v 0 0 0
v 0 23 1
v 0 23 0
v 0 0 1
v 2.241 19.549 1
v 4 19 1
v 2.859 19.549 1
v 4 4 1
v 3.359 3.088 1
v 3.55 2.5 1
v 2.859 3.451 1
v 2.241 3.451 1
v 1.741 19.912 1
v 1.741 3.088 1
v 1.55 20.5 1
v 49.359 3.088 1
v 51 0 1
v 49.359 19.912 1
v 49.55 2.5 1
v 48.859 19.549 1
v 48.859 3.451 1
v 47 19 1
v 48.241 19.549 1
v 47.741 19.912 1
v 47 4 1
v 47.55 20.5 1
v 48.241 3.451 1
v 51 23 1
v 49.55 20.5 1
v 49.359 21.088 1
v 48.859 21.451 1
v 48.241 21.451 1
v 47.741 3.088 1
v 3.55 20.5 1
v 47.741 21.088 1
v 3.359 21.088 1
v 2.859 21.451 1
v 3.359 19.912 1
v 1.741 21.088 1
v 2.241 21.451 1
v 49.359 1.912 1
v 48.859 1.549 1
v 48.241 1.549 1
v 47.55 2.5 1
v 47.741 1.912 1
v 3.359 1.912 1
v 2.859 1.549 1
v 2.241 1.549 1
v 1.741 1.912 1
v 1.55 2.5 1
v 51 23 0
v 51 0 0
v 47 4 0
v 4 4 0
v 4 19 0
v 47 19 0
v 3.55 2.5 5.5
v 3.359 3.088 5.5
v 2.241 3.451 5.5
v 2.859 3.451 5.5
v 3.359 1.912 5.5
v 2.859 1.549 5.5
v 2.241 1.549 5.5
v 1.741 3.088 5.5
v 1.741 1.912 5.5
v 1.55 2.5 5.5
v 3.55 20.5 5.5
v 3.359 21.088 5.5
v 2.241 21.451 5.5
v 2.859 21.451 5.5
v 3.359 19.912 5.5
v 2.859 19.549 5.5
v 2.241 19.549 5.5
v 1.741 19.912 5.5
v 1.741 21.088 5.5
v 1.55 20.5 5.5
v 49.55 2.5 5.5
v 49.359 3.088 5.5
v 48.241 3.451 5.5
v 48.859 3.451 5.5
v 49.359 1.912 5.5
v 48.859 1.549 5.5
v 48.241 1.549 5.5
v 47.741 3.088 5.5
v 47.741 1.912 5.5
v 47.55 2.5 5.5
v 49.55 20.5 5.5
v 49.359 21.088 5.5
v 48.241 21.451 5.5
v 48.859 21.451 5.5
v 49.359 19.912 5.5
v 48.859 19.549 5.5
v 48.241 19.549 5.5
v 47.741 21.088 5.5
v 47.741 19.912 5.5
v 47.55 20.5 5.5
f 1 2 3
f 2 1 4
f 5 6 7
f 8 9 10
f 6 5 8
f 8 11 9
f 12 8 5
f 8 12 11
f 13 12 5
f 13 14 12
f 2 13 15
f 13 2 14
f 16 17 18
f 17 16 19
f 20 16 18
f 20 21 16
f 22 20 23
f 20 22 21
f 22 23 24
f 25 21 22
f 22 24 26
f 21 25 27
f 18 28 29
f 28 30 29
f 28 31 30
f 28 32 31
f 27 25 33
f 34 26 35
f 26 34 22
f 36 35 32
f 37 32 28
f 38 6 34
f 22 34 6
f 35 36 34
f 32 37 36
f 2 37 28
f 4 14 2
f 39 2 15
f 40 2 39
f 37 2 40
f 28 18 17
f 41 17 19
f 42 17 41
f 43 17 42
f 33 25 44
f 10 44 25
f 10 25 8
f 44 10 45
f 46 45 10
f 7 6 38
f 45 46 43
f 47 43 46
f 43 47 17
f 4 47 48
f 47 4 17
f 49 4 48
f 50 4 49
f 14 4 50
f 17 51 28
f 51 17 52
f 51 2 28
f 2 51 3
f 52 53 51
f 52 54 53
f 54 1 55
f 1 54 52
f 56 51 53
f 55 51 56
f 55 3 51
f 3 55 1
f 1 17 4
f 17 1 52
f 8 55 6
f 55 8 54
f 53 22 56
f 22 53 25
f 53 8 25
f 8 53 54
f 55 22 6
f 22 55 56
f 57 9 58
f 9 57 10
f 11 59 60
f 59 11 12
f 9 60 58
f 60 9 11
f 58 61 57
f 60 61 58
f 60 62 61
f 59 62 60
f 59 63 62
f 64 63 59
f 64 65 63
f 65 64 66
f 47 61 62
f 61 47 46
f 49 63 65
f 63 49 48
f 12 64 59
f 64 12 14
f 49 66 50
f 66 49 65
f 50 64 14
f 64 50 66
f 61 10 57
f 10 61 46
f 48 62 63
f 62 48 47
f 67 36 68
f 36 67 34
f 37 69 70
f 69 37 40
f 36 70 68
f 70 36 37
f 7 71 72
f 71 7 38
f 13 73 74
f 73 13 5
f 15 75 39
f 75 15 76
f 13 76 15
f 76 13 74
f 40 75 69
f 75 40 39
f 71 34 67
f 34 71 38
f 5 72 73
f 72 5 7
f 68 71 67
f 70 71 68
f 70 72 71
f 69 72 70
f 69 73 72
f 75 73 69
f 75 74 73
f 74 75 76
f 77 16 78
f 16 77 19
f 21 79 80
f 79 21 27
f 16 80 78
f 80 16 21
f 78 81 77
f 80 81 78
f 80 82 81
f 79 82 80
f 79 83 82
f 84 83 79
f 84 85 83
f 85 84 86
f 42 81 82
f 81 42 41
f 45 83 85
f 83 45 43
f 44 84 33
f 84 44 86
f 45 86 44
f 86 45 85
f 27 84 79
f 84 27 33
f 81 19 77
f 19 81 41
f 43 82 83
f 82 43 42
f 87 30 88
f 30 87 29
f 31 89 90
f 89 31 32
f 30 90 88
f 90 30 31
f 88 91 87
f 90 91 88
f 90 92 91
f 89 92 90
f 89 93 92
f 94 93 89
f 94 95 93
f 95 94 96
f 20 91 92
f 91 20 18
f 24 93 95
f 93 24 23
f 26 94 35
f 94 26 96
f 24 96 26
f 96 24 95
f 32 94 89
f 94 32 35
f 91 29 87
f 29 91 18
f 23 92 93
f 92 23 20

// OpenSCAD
/*import("/Users/jstevens/Downloads/3D Printing/Adafruit/Adafruit_ESP8266_Feather/files/Adafruit_ESP8266_Feather_1.STL");*/
/*import("/Users/jstevens/Downloads/3D Printing/Adafruit/feather-case.stl");*/

/*
Base outter 80
Inner Bottom 74.31
Inner Top D 66.56
*/

t = 0.4;
$fn = 100;
base_h = 3;

module huzzah_holder(){
  module post(){ cylinder(h=5,d=2,center=true, $fn=10); }
  w = 46;
  d = 18;
  h = 3;
  x1 = 2.55;
  x2 = x1 + w;
  y1 = 2.5;
  y2 = y1 + d;
  translate([x1,y1,h]) post();
  translate([x1,y2,h]) post();
  translate([x2,y1,h]) post();
  translate([x2,y2,h]) post();
  difference() {
    cube([51,23,1]);
    translate([4,4,-1]) cube([51-8,23-8,3]);
  }
}
huzzah_holder();

/*
module clip() {
  cylinder(h=base_h,d=80,center=true, $fn=3);
  d = 1;
  w = 3;
  h = 3;
  translate ([0,0,h]) rotate([180,0,0]) hull(){
    cube([w,1,d]);
    rotate([90,0,0]) cube([w,1,d]);
  }
  translate([h,-d,0]) cube([h,d,w]);
}
module clips(){
  translate([0,-1,0]) cube([51,25,1]);
  clip();
  mirror([1,0,0]) translate([-50,0,0]) clip();
  mirror([0,1,0]) translate([0,-23,0]) clip();
  translate([50,23,0]) mirror([1,0,0]) mirror([0,10,0]) clip();
}
clips();
*/

/*
cylinder(h=base_h,d=80,center=true);
translate([0,0,base_h]) cylinder(h=base_h,d=74.31-t,center=true);
*/
